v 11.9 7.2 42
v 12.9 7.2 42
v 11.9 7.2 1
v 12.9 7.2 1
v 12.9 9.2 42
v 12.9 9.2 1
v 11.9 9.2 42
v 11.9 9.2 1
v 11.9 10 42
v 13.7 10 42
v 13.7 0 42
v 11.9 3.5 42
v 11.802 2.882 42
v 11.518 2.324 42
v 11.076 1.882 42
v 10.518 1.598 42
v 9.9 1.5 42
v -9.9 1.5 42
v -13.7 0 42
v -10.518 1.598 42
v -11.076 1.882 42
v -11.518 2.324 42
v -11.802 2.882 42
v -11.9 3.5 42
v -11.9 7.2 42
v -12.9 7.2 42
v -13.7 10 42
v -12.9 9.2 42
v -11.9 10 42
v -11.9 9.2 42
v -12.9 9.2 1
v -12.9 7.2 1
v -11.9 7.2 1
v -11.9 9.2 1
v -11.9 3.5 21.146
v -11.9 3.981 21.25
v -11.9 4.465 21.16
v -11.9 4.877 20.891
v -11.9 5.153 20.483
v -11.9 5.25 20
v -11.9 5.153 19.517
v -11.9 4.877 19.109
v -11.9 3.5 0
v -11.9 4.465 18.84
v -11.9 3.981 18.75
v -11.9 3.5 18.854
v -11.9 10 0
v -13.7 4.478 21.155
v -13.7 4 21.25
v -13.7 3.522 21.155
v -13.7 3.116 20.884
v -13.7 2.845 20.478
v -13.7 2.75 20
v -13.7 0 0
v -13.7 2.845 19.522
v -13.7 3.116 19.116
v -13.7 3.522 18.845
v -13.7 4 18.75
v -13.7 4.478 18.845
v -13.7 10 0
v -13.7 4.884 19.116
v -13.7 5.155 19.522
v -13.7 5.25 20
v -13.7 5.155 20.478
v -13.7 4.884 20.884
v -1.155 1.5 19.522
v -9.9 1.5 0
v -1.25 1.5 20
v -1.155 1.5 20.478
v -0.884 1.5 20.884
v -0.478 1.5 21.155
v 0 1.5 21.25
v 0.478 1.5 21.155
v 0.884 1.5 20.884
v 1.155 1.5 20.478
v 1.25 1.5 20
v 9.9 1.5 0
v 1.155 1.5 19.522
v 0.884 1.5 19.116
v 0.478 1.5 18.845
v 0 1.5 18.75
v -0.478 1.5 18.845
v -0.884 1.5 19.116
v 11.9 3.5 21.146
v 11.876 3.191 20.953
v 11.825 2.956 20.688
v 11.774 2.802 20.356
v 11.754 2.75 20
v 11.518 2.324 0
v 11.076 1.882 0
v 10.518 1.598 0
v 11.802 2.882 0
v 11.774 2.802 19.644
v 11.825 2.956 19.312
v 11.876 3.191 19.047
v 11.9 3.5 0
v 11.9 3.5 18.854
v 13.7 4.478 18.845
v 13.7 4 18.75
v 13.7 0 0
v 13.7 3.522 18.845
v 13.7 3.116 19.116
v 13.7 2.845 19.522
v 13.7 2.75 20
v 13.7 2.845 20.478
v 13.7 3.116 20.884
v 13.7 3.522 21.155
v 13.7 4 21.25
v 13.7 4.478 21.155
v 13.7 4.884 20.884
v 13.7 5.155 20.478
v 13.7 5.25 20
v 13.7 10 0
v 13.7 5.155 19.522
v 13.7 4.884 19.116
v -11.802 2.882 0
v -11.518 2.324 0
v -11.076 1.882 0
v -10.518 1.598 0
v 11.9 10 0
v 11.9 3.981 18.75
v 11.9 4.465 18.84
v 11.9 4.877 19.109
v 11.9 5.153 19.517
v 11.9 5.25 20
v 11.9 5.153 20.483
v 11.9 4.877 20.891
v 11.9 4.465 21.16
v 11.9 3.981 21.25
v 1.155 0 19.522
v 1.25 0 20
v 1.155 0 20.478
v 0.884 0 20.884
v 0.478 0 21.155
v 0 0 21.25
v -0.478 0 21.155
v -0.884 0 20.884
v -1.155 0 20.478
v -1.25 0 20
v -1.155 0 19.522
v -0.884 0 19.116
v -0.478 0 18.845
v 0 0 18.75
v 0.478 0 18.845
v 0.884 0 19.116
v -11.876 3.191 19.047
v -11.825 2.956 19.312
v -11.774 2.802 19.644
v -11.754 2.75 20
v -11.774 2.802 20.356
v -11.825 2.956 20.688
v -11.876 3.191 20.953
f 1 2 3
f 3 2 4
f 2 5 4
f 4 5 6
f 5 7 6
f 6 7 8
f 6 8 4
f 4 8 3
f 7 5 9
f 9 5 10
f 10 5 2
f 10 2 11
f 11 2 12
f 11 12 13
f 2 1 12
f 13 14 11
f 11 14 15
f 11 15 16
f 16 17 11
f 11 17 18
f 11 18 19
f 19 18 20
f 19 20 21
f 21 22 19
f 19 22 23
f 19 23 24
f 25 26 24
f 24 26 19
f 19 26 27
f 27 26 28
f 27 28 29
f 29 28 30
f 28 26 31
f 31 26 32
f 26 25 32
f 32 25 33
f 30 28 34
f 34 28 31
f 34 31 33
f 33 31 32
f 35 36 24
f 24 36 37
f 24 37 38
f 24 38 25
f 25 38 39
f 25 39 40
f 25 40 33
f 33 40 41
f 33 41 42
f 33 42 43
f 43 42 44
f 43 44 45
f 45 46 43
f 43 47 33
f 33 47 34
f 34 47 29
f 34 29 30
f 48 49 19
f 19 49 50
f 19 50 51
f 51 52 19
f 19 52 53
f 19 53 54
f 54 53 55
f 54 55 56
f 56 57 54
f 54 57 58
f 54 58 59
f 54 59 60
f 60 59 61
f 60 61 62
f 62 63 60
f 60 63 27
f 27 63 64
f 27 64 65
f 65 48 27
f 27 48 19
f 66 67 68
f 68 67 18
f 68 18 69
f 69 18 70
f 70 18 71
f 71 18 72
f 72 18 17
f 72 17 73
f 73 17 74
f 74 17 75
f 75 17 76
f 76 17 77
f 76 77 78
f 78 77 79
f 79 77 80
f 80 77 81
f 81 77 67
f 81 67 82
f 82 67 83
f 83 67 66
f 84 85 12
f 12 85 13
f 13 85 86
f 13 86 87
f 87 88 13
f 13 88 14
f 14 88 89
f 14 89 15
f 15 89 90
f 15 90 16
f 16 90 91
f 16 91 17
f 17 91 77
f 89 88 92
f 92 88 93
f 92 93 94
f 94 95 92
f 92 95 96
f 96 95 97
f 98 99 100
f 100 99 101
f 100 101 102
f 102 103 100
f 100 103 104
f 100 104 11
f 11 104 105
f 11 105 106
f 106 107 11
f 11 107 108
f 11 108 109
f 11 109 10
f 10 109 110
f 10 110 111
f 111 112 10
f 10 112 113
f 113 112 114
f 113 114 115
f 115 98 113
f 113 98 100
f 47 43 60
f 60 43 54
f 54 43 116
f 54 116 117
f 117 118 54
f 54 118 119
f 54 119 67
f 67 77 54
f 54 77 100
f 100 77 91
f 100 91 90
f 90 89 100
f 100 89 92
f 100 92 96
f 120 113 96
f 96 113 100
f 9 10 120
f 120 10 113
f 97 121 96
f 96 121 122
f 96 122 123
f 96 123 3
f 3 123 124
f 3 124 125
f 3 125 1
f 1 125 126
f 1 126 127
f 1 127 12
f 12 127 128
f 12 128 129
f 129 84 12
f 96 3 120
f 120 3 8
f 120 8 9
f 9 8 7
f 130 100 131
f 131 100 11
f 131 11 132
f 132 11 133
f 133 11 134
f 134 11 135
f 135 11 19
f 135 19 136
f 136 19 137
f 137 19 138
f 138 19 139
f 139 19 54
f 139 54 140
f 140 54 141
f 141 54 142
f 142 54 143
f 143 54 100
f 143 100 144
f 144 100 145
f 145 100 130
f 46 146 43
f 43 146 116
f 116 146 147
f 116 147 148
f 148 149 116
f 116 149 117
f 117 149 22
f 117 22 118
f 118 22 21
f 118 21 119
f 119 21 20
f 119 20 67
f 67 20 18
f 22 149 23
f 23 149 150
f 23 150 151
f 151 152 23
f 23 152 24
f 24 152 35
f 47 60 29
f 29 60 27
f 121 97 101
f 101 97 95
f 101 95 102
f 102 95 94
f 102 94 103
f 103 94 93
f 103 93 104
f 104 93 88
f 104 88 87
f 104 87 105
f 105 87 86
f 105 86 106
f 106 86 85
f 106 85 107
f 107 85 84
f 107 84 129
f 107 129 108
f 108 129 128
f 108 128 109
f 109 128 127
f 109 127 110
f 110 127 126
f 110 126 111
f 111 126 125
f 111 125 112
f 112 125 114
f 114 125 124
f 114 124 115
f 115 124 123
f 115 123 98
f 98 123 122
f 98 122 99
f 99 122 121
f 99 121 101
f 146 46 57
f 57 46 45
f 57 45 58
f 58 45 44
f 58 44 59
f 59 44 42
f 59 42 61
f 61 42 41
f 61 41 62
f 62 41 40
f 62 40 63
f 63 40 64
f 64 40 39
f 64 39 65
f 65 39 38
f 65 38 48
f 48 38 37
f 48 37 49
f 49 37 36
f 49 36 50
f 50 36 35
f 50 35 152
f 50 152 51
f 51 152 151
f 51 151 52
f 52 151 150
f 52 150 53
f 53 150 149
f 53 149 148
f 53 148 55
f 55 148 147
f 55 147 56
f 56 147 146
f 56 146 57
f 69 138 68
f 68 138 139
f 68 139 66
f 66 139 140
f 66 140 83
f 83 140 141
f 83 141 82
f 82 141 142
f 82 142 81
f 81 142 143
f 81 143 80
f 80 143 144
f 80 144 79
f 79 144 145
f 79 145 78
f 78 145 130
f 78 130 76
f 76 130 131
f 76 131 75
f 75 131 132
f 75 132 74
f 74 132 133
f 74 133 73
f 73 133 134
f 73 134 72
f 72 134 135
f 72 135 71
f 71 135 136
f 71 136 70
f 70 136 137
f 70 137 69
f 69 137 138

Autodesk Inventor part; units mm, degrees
ref_plane "YZ Plane" through (0, 0, 0) normal (1, 0, 0) x (0, 1, 0)
ref_plane "XZ Plane" through (0, 0, 0) normal (0, 1, 0) x (-1, 0, 0)
ref_plane "XY Plane" through (0, 0, 0) normal (0, 0, 1) x (1, 0, 0)
sketch "本体面" plane through (0, 0, 0) normal (0, 0, 1) x (1, 0, 0)
  line L0 (-13.7, 10) -> (13.7, 10)
  line L1 (13.7, 10) -> (13.7, 0)
  line L2 (13.7, 0) -> (-13.7, 0)
  line L3 (-13.7, 0) -> (-13.7, 10)
  point P0 (0, 0)
  point P1 (0, 0)
  dimension "d0" = 27.4
  dimension "d1" = 10
extrude "本体" add sketch "本体面" along normal blind 42
sketch "空洞面" plane through (0, 0, 42) normal (0, 0, 1) x (1, 0, 0)
  line L0 (-11.9, 10) -> (11.9, 10)
  line L1 (11.9, 10) -> (11.9, 3.5)
  line L2 (9.9, 1.5) -> (-9.9, 1.5)
  line L3 (-11.9, 3.5) -> (-11.9, 10)
  line L4 (13.7, 10) -> (-13.7, 10) projected
  arc A0 (-11.9, 3.5) -> (-9.9, 1.5) centre (-9.9, 3.5) ccw
  arc A1 (9.9, 1.5) -> (11.9, 3.5) centre (9.9, 3.5) ccw
  point P0 (0, 0)
  point P1 (11.9, 1.5)
  point P2 (-11.9, 1.5)
  point P3 (0, 10)
  dimension "d4" = 23.8
  dimension "d5" = 8.5
  dimension "d6" = 2
extrude "空洞" cut sketch "空洞面" against normal blind 42
sketch "左溝面" plane through (0, 0, 42) normal (0, 0, 1) x (1, 0, 0)
  line L0 (-12.9, 9.2) -> (-11.9, 9.2)
  line L1 (-11.9, 9.2) -> (-11.9, 7.2)
  line L2 (-11.9, 7.2) -> (-12.9, 7.2)
  line L3 (-12.9, 7.2) -> (-12.9, 9.2)
  line L4 (-11.9, 10) -> (-13.7, 10) construction
  line L5 (-13.7, 10) -> (-13.7, 0) construction
  line L6 (-11.9, 3.5) -> (-11.9, 10) construction
  point P0 (0, 0)
  dimension "d10" = 2
  dimension "d27" = 0.8
  dimension "d28" = 0.8
extrude "左溝" cut sketch "左溝面" against normal blind 41
sketch "右溝面" plane through (0, 0, 42) normal (0, 0, 1) x (1, 0, 0)
  line L0 (11.9, 9.2) -> (12.9, 9.2)
  line L1 (12.9, 9.2) -> (12.9, 7.2)
  line L2 (12.9, 7.2) -> (11.9, 7.2)
  line L3 (11.9, 7.2) -> (11.9, 9.2)
  line L4 (13.7, 10) -> (11.9, 10) projected
  line L5 (13.7, 0) -> (13.7, 10) projected
  line L6 (11.9, 10) -> (11.9, 3.5) projected
  point P0 (0, 0)
  dimension "d22" = 2
  dimension "d29" = 0.8
  dimension "d30" = 0.8
extrude "右溝" cut sketch "右溝面" against normal blind 41
sketch "右穴位置" plane through (13.7, 0, 0) normal (1, 0, 0) x (0, 0, -1)
  line L0 (-20, 0) -> (0, 0) construction
  line L1 (-20, 0) -> (-20, 4) construction
  line L2 (0, 10) -> (-42, 10) construction
  line L3 (0, 0) -> (-42, 0) construction
  line L4 (0, 10) -> (0, 0) construction
  dimension "d31" = 20
  dimension "d32" = 4
hole "右穴" at (13.7, 4, 20) direction (-1, 0, 0) diameter 2.5 depth 8 tip angle 118
sketch "左穴位置" plane through (-13.7, 0, 0) normal (-1, 0, 0) x (0, 0, 1)
  line L0 (0, 0) -> (20, 0) construction
  line L1 (20, 0) -> (20, 4) construction
  point P0 (0, 0)
  point P1 (0, 0)
  dimension "d40" = 4
  dimension "d41" = 20
hole "左穴" at (-13.7, 4, 20) direction (1, 0, 0) diameter 2.5 depth 8 tip angle 118
sketch "背穴位置" plane through (-13.7, 0, 0) normal (0, -1, 0) x (1, 0, 0)
  line L0 (13.7, 20) -> (13.7, 0) construction
  line L1 (27.4, 0) -> (0, 0) construction
  dimension "d49" = 20
hole "背穴" at (0, 0, 20) direction (0, 1, 0) diameter 2.5 depth 8 tip angle 118
properties part number "Pcam5C_holder"
